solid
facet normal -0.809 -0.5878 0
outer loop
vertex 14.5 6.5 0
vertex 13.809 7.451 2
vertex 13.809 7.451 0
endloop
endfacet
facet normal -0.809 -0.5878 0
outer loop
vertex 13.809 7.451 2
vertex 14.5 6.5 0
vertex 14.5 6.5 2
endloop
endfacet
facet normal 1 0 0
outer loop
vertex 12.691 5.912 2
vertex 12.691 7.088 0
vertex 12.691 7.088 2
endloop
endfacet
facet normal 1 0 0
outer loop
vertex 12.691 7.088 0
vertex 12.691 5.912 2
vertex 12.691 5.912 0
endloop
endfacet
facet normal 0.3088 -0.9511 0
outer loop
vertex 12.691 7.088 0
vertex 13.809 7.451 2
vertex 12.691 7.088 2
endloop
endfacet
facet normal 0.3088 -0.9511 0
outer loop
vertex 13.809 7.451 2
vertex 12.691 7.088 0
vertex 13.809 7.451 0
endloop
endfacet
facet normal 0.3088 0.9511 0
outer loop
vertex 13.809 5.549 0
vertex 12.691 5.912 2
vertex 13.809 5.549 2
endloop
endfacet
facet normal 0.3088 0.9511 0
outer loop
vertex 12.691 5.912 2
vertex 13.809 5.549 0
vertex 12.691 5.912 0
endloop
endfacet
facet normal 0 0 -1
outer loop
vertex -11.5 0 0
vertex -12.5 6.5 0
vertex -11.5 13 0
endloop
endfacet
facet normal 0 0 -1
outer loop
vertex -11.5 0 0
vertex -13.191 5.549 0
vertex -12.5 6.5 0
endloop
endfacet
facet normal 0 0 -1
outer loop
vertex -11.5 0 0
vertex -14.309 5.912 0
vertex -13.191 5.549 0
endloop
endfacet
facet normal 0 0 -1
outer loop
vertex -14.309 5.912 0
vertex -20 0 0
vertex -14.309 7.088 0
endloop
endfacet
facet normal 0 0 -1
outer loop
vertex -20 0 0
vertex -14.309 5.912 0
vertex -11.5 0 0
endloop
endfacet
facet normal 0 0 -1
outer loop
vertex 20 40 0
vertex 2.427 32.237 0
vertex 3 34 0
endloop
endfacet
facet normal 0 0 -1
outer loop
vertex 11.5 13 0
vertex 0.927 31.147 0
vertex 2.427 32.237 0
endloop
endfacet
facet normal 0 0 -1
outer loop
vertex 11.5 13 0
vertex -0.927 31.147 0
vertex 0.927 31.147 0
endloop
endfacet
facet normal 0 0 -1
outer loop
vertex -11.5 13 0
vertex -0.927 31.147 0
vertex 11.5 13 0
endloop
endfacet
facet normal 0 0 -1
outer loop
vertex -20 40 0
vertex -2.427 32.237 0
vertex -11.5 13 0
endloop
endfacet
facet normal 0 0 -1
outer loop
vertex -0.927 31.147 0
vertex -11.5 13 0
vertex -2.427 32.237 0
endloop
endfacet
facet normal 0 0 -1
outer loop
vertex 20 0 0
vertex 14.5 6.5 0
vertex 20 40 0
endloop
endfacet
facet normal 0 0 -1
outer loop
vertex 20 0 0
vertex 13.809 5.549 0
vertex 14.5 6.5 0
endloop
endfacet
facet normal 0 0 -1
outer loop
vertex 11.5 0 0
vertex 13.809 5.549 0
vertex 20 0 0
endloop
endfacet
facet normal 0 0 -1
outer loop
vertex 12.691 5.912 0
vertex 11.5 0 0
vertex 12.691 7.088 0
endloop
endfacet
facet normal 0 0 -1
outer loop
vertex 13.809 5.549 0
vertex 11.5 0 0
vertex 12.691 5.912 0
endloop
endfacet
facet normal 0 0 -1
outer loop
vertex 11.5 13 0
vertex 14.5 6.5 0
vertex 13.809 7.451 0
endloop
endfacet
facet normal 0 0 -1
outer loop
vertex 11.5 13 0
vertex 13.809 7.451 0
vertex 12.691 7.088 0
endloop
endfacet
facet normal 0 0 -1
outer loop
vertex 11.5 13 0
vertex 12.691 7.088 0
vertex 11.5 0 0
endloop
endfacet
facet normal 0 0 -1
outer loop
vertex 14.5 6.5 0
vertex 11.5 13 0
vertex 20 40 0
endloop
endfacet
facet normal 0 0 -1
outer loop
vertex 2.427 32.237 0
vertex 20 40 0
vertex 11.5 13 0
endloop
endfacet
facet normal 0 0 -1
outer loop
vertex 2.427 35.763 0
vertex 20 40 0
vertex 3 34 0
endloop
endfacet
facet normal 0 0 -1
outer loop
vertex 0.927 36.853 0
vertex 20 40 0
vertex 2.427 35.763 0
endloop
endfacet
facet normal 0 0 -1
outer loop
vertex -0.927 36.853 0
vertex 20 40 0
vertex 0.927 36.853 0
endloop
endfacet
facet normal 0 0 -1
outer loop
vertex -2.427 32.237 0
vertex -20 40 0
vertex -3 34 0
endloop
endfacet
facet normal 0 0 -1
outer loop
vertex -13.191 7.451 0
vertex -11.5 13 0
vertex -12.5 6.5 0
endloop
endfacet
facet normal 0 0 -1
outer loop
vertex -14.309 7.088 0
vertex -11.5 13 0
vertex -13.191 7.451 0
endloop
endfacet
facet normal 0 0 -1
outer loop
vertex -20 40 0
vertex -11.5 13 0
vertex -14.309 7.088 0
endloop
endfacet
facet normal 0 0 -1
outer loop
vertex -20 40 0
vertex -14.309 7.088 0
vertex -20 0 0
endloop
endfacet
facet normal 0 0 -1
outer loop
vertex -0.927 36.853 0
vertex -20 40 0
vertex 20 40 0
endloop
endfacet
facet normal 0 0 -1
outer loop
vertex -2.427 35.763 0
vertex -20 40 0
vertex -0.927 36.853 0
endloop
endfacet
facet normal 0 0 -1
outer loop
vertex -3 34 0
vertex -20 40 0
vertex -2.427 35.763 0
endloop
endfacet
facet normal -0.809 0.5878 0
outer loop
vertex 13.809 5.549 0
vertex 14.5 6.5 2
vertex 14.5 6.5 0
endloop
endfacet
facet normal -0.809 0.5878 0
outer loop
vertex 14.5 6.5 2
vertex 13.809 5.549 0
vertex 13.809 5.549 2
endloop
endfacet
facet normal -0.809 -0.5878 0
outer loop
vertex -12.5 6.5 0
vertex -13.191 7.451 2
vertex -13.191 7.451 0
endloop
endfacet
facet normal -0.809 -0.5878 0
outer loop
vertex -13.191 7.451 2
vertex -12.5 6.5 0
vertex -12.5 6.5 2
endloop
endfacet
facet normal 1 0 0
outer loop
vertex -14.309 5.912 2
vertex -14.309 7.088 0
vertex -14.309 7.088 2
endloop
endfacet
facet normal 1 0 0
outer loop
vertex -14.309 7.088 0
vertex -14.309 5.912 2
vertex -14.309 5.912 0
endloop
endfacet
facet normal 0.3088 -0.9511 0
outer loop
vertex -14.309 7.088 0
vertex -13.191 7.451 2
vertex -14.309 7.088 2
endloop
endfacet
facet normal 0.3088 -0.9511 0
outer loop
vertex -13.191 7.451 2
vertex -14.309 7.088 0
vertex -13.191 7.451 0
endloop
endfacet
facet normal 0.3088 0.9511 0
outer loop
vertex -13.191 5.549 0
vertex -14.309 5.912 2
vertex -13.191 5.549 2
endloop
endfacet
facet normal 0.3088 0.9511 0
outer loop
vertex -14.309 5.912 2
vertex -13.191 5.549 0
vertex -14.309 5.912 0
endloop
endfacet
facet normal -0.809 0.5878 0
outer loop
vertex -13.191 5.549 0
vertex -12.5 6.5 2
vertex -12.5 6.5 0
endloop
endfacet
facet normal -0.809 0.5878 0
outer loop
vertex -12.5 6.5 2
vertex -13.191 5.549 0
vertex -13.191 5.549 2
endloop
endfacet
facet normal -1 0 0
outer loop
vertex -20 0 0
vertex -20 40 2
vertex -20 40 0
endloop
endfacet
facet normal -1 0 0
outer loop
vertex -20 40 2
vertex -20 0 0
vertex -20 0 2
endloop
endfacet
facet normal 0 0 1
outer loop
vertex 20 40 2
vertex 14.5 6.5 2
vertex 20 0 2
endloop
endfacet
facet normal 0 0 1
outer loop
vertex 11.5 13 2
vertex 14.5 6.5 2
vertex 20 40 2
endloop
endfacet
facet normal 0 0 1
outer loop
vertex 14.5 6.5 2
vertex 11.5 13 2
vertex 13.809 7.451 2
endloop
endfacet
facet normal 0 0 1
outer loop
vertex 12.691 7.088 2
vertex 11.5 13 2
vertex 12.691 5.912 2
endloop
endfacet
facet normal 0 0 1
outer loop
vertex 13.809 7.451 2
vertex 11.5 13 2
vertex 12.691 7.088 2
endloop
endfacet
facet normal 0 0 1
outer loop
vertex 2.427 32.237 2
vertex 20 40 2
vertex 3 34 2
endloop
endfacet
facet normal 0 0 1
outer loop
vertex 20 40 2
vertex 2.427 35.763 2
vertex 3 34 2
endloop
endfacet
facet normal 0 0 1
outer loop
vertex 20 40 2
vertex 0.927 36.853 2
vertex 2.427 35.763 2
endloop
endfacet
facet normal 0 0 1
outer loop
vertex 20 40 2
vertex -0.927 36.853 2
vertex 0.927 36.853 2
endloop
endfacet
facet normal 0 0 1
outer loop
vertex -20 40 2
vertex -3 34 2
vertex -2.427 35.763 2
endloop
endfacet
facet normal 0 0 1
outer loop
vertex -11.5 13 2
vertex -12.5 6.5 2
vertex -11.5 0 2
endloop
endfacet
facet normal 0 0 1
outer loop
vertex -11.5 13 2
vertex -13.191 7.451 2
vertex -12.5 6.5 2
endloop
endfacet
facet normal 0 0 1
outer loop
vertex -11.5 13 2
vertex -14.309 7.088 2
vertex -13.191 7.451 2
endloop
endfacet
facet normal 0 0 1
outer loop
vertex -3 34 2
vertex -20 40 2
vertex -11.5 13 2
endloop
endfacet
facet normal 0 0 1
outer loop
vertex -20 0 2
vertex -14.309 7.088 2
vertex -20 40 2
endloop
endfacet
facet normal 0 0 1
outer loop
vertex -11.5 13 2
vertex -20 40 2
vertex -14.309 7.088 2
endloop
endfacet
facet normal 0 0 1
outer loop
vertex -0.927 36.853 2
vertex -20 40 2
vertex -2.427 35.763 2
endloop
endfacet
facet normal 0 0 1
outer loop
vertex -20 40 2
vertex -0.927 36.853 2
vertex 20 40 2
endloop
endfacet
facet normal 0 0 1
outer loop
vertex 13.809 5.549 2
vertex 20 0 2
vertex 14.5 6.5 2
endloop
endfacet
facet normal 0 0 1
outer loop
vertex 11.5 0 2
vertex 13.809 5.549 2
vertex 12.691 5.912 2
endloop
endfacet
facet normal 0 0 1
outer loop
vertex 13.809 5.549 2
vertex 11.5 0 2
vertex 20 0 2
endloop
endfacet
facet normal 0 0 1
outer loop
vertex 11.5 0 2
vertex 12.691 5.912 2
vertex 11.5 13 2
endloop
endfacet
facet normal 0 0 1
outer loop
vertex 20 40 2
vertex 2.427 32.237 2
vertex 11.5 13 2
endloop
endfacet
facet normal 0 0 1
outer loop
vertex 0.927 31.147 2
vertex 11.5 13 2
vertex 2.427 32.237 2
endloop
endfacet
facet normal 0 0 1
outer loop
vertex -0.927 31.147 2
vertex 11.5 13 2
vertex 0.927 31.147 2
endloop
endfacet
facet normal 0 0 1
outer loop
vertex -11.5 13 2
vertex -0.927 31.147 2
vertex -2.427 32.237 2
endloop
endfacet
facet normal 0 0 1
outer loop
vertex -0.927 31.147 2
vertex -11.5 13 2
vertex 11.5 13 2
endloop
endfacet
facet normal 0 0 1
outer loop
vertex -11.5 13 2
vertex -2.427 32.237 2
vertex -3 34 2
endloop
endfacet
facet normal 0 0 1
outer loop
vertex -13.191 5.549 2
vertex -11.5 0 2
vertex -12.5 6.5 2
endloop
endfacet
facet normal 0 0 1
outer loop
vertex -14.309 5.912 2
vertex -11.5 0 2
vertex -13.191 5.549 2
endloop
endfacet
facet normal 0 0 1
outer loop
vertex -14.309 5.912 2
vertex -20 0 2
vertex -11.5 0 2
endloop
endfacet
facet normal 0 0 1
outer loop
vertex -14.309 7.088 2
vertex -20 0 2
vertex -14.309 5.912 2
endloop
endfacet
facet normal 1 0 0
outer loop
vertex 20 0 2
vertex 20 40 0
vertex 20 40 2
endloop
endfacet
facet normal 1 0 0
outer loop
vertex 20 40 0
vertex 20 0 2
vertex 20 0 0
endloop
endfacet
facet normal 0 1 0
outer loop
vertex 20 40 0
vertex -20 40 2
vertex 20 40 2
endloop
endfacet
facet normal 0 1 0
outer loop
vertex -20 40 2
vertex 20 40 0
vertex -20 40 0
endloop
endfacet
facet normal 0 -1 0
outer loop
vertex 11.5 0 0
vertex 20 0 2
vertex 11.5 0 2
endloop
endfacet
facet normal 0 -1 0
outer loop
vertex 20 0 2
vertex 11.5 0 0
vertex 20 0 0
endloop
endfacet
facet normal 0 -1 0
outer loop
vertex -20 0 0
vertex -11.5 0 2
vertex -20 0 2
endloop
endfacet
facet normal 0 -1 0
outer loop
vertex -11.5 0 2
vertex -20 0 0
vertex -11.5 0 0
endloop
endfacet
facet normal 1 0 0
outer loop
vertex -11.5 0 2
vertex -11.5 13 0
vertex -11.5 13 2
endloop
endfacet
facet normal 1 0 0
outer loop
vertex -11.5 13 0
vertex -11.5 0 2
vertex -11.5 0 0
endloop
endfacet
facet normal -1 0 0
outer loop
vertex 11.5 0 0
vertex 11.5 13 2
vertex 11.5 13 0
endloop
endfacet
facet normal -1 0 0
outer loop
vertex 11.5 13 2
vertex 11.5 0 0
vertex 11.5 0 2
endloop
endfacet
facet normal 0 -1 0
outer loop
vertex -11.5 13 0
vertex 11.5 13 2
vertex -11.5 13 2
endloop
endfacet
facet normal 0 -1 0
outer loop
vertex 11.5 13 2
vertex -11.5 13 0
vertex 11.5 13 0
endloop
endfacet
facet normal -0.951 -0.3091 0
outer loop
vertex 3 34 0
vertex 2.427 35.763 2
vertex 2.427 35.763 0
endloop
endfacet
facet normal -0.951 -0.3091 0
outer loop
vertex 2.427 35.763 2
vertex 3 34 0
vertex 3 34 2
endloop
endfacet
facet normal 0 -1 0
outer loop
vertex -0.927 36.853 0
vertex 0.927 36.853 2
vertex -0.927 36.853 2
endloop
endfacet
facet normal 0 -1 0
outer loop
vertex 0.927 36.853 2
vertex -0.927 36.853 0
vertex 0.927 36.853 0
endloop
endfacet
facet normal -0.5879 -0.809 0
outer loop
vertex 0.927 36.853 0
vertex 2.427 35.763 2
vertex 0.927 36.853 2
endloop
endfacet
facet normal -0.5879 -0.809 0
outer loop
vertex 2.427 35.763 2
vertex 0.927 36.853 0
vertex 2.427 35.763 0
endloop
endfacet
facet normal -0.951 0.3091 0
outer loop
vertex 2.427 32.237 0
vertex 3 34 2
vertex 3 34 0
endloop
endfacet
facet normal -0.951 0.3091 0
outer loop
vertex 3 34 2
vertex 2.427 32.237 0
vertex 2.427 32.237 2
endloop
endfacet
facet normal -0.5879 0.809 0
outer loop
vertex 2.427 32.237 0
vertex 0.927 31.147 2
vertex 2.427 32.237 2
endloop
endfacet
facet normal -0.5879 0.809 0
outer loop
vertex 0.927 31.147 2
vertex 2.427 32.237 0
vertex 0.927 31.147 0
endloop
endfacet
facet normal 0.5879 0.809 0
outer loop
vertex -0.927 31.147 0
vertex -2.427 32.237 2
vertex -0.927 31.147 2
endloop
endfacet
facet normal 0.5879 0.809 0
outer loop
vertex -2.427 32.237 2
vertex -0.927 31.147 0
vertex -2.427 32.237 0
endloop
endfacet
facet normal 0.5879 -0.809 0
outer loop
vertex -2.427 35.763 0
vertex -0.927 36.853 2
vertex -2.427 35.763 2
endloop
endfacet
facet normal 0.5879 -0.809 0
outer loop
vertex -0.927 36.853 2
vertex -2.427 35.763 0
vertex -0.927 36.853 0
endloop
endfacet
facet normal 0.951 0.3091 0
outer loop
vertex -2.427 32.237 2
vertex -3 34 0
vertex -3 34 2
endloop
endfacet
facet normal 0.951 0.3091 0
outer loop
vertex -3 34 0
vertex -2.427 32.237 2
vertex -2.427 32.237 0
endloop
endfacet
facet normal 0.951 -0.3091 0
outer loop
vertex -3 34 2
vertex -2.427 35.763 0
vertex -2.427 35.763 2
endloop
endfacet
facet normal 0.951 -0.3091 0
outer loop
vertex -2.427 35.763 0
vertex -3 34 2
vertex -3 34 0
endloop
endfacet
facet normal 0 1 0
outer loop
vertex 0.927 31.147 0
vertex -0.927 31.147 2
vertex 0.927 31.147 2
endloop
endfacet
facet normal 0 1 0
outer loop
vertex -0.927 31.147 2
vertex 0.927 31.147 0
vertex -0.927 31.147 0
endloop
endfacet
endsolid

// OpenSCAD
difference() {
	translate(v = [0, 20.0000000000, 0]) {
		translate(v = [0, 0, 1.0000000000]) {
			cube(center = true, size = [40, 40, 2]);
		}
	}
	translate(v = [0, 6.5000000000, 0]) {
		translate(v = [0, 0, 1.0000000000]) {
			cube(center = true, size = [23, 13, 2]);
		}
	}
	union() {
		translate(v = [13.5000000000, 0, 0]) {
			translate(v = [0, 6.5000000000, 0]) {
				cylinder(d = 2, h = 20);
			}
		}
		translate(v = [-13.5000000000, 0, 0]) {
			translate(v = [0, 6.5000000000, 0]) {
				cylinder(d = 2, h = 20);
			}
		}
	}
	translate(v = [0, 34, 0]) {
		cylinder(d = 6, h = 20);
	}
}
